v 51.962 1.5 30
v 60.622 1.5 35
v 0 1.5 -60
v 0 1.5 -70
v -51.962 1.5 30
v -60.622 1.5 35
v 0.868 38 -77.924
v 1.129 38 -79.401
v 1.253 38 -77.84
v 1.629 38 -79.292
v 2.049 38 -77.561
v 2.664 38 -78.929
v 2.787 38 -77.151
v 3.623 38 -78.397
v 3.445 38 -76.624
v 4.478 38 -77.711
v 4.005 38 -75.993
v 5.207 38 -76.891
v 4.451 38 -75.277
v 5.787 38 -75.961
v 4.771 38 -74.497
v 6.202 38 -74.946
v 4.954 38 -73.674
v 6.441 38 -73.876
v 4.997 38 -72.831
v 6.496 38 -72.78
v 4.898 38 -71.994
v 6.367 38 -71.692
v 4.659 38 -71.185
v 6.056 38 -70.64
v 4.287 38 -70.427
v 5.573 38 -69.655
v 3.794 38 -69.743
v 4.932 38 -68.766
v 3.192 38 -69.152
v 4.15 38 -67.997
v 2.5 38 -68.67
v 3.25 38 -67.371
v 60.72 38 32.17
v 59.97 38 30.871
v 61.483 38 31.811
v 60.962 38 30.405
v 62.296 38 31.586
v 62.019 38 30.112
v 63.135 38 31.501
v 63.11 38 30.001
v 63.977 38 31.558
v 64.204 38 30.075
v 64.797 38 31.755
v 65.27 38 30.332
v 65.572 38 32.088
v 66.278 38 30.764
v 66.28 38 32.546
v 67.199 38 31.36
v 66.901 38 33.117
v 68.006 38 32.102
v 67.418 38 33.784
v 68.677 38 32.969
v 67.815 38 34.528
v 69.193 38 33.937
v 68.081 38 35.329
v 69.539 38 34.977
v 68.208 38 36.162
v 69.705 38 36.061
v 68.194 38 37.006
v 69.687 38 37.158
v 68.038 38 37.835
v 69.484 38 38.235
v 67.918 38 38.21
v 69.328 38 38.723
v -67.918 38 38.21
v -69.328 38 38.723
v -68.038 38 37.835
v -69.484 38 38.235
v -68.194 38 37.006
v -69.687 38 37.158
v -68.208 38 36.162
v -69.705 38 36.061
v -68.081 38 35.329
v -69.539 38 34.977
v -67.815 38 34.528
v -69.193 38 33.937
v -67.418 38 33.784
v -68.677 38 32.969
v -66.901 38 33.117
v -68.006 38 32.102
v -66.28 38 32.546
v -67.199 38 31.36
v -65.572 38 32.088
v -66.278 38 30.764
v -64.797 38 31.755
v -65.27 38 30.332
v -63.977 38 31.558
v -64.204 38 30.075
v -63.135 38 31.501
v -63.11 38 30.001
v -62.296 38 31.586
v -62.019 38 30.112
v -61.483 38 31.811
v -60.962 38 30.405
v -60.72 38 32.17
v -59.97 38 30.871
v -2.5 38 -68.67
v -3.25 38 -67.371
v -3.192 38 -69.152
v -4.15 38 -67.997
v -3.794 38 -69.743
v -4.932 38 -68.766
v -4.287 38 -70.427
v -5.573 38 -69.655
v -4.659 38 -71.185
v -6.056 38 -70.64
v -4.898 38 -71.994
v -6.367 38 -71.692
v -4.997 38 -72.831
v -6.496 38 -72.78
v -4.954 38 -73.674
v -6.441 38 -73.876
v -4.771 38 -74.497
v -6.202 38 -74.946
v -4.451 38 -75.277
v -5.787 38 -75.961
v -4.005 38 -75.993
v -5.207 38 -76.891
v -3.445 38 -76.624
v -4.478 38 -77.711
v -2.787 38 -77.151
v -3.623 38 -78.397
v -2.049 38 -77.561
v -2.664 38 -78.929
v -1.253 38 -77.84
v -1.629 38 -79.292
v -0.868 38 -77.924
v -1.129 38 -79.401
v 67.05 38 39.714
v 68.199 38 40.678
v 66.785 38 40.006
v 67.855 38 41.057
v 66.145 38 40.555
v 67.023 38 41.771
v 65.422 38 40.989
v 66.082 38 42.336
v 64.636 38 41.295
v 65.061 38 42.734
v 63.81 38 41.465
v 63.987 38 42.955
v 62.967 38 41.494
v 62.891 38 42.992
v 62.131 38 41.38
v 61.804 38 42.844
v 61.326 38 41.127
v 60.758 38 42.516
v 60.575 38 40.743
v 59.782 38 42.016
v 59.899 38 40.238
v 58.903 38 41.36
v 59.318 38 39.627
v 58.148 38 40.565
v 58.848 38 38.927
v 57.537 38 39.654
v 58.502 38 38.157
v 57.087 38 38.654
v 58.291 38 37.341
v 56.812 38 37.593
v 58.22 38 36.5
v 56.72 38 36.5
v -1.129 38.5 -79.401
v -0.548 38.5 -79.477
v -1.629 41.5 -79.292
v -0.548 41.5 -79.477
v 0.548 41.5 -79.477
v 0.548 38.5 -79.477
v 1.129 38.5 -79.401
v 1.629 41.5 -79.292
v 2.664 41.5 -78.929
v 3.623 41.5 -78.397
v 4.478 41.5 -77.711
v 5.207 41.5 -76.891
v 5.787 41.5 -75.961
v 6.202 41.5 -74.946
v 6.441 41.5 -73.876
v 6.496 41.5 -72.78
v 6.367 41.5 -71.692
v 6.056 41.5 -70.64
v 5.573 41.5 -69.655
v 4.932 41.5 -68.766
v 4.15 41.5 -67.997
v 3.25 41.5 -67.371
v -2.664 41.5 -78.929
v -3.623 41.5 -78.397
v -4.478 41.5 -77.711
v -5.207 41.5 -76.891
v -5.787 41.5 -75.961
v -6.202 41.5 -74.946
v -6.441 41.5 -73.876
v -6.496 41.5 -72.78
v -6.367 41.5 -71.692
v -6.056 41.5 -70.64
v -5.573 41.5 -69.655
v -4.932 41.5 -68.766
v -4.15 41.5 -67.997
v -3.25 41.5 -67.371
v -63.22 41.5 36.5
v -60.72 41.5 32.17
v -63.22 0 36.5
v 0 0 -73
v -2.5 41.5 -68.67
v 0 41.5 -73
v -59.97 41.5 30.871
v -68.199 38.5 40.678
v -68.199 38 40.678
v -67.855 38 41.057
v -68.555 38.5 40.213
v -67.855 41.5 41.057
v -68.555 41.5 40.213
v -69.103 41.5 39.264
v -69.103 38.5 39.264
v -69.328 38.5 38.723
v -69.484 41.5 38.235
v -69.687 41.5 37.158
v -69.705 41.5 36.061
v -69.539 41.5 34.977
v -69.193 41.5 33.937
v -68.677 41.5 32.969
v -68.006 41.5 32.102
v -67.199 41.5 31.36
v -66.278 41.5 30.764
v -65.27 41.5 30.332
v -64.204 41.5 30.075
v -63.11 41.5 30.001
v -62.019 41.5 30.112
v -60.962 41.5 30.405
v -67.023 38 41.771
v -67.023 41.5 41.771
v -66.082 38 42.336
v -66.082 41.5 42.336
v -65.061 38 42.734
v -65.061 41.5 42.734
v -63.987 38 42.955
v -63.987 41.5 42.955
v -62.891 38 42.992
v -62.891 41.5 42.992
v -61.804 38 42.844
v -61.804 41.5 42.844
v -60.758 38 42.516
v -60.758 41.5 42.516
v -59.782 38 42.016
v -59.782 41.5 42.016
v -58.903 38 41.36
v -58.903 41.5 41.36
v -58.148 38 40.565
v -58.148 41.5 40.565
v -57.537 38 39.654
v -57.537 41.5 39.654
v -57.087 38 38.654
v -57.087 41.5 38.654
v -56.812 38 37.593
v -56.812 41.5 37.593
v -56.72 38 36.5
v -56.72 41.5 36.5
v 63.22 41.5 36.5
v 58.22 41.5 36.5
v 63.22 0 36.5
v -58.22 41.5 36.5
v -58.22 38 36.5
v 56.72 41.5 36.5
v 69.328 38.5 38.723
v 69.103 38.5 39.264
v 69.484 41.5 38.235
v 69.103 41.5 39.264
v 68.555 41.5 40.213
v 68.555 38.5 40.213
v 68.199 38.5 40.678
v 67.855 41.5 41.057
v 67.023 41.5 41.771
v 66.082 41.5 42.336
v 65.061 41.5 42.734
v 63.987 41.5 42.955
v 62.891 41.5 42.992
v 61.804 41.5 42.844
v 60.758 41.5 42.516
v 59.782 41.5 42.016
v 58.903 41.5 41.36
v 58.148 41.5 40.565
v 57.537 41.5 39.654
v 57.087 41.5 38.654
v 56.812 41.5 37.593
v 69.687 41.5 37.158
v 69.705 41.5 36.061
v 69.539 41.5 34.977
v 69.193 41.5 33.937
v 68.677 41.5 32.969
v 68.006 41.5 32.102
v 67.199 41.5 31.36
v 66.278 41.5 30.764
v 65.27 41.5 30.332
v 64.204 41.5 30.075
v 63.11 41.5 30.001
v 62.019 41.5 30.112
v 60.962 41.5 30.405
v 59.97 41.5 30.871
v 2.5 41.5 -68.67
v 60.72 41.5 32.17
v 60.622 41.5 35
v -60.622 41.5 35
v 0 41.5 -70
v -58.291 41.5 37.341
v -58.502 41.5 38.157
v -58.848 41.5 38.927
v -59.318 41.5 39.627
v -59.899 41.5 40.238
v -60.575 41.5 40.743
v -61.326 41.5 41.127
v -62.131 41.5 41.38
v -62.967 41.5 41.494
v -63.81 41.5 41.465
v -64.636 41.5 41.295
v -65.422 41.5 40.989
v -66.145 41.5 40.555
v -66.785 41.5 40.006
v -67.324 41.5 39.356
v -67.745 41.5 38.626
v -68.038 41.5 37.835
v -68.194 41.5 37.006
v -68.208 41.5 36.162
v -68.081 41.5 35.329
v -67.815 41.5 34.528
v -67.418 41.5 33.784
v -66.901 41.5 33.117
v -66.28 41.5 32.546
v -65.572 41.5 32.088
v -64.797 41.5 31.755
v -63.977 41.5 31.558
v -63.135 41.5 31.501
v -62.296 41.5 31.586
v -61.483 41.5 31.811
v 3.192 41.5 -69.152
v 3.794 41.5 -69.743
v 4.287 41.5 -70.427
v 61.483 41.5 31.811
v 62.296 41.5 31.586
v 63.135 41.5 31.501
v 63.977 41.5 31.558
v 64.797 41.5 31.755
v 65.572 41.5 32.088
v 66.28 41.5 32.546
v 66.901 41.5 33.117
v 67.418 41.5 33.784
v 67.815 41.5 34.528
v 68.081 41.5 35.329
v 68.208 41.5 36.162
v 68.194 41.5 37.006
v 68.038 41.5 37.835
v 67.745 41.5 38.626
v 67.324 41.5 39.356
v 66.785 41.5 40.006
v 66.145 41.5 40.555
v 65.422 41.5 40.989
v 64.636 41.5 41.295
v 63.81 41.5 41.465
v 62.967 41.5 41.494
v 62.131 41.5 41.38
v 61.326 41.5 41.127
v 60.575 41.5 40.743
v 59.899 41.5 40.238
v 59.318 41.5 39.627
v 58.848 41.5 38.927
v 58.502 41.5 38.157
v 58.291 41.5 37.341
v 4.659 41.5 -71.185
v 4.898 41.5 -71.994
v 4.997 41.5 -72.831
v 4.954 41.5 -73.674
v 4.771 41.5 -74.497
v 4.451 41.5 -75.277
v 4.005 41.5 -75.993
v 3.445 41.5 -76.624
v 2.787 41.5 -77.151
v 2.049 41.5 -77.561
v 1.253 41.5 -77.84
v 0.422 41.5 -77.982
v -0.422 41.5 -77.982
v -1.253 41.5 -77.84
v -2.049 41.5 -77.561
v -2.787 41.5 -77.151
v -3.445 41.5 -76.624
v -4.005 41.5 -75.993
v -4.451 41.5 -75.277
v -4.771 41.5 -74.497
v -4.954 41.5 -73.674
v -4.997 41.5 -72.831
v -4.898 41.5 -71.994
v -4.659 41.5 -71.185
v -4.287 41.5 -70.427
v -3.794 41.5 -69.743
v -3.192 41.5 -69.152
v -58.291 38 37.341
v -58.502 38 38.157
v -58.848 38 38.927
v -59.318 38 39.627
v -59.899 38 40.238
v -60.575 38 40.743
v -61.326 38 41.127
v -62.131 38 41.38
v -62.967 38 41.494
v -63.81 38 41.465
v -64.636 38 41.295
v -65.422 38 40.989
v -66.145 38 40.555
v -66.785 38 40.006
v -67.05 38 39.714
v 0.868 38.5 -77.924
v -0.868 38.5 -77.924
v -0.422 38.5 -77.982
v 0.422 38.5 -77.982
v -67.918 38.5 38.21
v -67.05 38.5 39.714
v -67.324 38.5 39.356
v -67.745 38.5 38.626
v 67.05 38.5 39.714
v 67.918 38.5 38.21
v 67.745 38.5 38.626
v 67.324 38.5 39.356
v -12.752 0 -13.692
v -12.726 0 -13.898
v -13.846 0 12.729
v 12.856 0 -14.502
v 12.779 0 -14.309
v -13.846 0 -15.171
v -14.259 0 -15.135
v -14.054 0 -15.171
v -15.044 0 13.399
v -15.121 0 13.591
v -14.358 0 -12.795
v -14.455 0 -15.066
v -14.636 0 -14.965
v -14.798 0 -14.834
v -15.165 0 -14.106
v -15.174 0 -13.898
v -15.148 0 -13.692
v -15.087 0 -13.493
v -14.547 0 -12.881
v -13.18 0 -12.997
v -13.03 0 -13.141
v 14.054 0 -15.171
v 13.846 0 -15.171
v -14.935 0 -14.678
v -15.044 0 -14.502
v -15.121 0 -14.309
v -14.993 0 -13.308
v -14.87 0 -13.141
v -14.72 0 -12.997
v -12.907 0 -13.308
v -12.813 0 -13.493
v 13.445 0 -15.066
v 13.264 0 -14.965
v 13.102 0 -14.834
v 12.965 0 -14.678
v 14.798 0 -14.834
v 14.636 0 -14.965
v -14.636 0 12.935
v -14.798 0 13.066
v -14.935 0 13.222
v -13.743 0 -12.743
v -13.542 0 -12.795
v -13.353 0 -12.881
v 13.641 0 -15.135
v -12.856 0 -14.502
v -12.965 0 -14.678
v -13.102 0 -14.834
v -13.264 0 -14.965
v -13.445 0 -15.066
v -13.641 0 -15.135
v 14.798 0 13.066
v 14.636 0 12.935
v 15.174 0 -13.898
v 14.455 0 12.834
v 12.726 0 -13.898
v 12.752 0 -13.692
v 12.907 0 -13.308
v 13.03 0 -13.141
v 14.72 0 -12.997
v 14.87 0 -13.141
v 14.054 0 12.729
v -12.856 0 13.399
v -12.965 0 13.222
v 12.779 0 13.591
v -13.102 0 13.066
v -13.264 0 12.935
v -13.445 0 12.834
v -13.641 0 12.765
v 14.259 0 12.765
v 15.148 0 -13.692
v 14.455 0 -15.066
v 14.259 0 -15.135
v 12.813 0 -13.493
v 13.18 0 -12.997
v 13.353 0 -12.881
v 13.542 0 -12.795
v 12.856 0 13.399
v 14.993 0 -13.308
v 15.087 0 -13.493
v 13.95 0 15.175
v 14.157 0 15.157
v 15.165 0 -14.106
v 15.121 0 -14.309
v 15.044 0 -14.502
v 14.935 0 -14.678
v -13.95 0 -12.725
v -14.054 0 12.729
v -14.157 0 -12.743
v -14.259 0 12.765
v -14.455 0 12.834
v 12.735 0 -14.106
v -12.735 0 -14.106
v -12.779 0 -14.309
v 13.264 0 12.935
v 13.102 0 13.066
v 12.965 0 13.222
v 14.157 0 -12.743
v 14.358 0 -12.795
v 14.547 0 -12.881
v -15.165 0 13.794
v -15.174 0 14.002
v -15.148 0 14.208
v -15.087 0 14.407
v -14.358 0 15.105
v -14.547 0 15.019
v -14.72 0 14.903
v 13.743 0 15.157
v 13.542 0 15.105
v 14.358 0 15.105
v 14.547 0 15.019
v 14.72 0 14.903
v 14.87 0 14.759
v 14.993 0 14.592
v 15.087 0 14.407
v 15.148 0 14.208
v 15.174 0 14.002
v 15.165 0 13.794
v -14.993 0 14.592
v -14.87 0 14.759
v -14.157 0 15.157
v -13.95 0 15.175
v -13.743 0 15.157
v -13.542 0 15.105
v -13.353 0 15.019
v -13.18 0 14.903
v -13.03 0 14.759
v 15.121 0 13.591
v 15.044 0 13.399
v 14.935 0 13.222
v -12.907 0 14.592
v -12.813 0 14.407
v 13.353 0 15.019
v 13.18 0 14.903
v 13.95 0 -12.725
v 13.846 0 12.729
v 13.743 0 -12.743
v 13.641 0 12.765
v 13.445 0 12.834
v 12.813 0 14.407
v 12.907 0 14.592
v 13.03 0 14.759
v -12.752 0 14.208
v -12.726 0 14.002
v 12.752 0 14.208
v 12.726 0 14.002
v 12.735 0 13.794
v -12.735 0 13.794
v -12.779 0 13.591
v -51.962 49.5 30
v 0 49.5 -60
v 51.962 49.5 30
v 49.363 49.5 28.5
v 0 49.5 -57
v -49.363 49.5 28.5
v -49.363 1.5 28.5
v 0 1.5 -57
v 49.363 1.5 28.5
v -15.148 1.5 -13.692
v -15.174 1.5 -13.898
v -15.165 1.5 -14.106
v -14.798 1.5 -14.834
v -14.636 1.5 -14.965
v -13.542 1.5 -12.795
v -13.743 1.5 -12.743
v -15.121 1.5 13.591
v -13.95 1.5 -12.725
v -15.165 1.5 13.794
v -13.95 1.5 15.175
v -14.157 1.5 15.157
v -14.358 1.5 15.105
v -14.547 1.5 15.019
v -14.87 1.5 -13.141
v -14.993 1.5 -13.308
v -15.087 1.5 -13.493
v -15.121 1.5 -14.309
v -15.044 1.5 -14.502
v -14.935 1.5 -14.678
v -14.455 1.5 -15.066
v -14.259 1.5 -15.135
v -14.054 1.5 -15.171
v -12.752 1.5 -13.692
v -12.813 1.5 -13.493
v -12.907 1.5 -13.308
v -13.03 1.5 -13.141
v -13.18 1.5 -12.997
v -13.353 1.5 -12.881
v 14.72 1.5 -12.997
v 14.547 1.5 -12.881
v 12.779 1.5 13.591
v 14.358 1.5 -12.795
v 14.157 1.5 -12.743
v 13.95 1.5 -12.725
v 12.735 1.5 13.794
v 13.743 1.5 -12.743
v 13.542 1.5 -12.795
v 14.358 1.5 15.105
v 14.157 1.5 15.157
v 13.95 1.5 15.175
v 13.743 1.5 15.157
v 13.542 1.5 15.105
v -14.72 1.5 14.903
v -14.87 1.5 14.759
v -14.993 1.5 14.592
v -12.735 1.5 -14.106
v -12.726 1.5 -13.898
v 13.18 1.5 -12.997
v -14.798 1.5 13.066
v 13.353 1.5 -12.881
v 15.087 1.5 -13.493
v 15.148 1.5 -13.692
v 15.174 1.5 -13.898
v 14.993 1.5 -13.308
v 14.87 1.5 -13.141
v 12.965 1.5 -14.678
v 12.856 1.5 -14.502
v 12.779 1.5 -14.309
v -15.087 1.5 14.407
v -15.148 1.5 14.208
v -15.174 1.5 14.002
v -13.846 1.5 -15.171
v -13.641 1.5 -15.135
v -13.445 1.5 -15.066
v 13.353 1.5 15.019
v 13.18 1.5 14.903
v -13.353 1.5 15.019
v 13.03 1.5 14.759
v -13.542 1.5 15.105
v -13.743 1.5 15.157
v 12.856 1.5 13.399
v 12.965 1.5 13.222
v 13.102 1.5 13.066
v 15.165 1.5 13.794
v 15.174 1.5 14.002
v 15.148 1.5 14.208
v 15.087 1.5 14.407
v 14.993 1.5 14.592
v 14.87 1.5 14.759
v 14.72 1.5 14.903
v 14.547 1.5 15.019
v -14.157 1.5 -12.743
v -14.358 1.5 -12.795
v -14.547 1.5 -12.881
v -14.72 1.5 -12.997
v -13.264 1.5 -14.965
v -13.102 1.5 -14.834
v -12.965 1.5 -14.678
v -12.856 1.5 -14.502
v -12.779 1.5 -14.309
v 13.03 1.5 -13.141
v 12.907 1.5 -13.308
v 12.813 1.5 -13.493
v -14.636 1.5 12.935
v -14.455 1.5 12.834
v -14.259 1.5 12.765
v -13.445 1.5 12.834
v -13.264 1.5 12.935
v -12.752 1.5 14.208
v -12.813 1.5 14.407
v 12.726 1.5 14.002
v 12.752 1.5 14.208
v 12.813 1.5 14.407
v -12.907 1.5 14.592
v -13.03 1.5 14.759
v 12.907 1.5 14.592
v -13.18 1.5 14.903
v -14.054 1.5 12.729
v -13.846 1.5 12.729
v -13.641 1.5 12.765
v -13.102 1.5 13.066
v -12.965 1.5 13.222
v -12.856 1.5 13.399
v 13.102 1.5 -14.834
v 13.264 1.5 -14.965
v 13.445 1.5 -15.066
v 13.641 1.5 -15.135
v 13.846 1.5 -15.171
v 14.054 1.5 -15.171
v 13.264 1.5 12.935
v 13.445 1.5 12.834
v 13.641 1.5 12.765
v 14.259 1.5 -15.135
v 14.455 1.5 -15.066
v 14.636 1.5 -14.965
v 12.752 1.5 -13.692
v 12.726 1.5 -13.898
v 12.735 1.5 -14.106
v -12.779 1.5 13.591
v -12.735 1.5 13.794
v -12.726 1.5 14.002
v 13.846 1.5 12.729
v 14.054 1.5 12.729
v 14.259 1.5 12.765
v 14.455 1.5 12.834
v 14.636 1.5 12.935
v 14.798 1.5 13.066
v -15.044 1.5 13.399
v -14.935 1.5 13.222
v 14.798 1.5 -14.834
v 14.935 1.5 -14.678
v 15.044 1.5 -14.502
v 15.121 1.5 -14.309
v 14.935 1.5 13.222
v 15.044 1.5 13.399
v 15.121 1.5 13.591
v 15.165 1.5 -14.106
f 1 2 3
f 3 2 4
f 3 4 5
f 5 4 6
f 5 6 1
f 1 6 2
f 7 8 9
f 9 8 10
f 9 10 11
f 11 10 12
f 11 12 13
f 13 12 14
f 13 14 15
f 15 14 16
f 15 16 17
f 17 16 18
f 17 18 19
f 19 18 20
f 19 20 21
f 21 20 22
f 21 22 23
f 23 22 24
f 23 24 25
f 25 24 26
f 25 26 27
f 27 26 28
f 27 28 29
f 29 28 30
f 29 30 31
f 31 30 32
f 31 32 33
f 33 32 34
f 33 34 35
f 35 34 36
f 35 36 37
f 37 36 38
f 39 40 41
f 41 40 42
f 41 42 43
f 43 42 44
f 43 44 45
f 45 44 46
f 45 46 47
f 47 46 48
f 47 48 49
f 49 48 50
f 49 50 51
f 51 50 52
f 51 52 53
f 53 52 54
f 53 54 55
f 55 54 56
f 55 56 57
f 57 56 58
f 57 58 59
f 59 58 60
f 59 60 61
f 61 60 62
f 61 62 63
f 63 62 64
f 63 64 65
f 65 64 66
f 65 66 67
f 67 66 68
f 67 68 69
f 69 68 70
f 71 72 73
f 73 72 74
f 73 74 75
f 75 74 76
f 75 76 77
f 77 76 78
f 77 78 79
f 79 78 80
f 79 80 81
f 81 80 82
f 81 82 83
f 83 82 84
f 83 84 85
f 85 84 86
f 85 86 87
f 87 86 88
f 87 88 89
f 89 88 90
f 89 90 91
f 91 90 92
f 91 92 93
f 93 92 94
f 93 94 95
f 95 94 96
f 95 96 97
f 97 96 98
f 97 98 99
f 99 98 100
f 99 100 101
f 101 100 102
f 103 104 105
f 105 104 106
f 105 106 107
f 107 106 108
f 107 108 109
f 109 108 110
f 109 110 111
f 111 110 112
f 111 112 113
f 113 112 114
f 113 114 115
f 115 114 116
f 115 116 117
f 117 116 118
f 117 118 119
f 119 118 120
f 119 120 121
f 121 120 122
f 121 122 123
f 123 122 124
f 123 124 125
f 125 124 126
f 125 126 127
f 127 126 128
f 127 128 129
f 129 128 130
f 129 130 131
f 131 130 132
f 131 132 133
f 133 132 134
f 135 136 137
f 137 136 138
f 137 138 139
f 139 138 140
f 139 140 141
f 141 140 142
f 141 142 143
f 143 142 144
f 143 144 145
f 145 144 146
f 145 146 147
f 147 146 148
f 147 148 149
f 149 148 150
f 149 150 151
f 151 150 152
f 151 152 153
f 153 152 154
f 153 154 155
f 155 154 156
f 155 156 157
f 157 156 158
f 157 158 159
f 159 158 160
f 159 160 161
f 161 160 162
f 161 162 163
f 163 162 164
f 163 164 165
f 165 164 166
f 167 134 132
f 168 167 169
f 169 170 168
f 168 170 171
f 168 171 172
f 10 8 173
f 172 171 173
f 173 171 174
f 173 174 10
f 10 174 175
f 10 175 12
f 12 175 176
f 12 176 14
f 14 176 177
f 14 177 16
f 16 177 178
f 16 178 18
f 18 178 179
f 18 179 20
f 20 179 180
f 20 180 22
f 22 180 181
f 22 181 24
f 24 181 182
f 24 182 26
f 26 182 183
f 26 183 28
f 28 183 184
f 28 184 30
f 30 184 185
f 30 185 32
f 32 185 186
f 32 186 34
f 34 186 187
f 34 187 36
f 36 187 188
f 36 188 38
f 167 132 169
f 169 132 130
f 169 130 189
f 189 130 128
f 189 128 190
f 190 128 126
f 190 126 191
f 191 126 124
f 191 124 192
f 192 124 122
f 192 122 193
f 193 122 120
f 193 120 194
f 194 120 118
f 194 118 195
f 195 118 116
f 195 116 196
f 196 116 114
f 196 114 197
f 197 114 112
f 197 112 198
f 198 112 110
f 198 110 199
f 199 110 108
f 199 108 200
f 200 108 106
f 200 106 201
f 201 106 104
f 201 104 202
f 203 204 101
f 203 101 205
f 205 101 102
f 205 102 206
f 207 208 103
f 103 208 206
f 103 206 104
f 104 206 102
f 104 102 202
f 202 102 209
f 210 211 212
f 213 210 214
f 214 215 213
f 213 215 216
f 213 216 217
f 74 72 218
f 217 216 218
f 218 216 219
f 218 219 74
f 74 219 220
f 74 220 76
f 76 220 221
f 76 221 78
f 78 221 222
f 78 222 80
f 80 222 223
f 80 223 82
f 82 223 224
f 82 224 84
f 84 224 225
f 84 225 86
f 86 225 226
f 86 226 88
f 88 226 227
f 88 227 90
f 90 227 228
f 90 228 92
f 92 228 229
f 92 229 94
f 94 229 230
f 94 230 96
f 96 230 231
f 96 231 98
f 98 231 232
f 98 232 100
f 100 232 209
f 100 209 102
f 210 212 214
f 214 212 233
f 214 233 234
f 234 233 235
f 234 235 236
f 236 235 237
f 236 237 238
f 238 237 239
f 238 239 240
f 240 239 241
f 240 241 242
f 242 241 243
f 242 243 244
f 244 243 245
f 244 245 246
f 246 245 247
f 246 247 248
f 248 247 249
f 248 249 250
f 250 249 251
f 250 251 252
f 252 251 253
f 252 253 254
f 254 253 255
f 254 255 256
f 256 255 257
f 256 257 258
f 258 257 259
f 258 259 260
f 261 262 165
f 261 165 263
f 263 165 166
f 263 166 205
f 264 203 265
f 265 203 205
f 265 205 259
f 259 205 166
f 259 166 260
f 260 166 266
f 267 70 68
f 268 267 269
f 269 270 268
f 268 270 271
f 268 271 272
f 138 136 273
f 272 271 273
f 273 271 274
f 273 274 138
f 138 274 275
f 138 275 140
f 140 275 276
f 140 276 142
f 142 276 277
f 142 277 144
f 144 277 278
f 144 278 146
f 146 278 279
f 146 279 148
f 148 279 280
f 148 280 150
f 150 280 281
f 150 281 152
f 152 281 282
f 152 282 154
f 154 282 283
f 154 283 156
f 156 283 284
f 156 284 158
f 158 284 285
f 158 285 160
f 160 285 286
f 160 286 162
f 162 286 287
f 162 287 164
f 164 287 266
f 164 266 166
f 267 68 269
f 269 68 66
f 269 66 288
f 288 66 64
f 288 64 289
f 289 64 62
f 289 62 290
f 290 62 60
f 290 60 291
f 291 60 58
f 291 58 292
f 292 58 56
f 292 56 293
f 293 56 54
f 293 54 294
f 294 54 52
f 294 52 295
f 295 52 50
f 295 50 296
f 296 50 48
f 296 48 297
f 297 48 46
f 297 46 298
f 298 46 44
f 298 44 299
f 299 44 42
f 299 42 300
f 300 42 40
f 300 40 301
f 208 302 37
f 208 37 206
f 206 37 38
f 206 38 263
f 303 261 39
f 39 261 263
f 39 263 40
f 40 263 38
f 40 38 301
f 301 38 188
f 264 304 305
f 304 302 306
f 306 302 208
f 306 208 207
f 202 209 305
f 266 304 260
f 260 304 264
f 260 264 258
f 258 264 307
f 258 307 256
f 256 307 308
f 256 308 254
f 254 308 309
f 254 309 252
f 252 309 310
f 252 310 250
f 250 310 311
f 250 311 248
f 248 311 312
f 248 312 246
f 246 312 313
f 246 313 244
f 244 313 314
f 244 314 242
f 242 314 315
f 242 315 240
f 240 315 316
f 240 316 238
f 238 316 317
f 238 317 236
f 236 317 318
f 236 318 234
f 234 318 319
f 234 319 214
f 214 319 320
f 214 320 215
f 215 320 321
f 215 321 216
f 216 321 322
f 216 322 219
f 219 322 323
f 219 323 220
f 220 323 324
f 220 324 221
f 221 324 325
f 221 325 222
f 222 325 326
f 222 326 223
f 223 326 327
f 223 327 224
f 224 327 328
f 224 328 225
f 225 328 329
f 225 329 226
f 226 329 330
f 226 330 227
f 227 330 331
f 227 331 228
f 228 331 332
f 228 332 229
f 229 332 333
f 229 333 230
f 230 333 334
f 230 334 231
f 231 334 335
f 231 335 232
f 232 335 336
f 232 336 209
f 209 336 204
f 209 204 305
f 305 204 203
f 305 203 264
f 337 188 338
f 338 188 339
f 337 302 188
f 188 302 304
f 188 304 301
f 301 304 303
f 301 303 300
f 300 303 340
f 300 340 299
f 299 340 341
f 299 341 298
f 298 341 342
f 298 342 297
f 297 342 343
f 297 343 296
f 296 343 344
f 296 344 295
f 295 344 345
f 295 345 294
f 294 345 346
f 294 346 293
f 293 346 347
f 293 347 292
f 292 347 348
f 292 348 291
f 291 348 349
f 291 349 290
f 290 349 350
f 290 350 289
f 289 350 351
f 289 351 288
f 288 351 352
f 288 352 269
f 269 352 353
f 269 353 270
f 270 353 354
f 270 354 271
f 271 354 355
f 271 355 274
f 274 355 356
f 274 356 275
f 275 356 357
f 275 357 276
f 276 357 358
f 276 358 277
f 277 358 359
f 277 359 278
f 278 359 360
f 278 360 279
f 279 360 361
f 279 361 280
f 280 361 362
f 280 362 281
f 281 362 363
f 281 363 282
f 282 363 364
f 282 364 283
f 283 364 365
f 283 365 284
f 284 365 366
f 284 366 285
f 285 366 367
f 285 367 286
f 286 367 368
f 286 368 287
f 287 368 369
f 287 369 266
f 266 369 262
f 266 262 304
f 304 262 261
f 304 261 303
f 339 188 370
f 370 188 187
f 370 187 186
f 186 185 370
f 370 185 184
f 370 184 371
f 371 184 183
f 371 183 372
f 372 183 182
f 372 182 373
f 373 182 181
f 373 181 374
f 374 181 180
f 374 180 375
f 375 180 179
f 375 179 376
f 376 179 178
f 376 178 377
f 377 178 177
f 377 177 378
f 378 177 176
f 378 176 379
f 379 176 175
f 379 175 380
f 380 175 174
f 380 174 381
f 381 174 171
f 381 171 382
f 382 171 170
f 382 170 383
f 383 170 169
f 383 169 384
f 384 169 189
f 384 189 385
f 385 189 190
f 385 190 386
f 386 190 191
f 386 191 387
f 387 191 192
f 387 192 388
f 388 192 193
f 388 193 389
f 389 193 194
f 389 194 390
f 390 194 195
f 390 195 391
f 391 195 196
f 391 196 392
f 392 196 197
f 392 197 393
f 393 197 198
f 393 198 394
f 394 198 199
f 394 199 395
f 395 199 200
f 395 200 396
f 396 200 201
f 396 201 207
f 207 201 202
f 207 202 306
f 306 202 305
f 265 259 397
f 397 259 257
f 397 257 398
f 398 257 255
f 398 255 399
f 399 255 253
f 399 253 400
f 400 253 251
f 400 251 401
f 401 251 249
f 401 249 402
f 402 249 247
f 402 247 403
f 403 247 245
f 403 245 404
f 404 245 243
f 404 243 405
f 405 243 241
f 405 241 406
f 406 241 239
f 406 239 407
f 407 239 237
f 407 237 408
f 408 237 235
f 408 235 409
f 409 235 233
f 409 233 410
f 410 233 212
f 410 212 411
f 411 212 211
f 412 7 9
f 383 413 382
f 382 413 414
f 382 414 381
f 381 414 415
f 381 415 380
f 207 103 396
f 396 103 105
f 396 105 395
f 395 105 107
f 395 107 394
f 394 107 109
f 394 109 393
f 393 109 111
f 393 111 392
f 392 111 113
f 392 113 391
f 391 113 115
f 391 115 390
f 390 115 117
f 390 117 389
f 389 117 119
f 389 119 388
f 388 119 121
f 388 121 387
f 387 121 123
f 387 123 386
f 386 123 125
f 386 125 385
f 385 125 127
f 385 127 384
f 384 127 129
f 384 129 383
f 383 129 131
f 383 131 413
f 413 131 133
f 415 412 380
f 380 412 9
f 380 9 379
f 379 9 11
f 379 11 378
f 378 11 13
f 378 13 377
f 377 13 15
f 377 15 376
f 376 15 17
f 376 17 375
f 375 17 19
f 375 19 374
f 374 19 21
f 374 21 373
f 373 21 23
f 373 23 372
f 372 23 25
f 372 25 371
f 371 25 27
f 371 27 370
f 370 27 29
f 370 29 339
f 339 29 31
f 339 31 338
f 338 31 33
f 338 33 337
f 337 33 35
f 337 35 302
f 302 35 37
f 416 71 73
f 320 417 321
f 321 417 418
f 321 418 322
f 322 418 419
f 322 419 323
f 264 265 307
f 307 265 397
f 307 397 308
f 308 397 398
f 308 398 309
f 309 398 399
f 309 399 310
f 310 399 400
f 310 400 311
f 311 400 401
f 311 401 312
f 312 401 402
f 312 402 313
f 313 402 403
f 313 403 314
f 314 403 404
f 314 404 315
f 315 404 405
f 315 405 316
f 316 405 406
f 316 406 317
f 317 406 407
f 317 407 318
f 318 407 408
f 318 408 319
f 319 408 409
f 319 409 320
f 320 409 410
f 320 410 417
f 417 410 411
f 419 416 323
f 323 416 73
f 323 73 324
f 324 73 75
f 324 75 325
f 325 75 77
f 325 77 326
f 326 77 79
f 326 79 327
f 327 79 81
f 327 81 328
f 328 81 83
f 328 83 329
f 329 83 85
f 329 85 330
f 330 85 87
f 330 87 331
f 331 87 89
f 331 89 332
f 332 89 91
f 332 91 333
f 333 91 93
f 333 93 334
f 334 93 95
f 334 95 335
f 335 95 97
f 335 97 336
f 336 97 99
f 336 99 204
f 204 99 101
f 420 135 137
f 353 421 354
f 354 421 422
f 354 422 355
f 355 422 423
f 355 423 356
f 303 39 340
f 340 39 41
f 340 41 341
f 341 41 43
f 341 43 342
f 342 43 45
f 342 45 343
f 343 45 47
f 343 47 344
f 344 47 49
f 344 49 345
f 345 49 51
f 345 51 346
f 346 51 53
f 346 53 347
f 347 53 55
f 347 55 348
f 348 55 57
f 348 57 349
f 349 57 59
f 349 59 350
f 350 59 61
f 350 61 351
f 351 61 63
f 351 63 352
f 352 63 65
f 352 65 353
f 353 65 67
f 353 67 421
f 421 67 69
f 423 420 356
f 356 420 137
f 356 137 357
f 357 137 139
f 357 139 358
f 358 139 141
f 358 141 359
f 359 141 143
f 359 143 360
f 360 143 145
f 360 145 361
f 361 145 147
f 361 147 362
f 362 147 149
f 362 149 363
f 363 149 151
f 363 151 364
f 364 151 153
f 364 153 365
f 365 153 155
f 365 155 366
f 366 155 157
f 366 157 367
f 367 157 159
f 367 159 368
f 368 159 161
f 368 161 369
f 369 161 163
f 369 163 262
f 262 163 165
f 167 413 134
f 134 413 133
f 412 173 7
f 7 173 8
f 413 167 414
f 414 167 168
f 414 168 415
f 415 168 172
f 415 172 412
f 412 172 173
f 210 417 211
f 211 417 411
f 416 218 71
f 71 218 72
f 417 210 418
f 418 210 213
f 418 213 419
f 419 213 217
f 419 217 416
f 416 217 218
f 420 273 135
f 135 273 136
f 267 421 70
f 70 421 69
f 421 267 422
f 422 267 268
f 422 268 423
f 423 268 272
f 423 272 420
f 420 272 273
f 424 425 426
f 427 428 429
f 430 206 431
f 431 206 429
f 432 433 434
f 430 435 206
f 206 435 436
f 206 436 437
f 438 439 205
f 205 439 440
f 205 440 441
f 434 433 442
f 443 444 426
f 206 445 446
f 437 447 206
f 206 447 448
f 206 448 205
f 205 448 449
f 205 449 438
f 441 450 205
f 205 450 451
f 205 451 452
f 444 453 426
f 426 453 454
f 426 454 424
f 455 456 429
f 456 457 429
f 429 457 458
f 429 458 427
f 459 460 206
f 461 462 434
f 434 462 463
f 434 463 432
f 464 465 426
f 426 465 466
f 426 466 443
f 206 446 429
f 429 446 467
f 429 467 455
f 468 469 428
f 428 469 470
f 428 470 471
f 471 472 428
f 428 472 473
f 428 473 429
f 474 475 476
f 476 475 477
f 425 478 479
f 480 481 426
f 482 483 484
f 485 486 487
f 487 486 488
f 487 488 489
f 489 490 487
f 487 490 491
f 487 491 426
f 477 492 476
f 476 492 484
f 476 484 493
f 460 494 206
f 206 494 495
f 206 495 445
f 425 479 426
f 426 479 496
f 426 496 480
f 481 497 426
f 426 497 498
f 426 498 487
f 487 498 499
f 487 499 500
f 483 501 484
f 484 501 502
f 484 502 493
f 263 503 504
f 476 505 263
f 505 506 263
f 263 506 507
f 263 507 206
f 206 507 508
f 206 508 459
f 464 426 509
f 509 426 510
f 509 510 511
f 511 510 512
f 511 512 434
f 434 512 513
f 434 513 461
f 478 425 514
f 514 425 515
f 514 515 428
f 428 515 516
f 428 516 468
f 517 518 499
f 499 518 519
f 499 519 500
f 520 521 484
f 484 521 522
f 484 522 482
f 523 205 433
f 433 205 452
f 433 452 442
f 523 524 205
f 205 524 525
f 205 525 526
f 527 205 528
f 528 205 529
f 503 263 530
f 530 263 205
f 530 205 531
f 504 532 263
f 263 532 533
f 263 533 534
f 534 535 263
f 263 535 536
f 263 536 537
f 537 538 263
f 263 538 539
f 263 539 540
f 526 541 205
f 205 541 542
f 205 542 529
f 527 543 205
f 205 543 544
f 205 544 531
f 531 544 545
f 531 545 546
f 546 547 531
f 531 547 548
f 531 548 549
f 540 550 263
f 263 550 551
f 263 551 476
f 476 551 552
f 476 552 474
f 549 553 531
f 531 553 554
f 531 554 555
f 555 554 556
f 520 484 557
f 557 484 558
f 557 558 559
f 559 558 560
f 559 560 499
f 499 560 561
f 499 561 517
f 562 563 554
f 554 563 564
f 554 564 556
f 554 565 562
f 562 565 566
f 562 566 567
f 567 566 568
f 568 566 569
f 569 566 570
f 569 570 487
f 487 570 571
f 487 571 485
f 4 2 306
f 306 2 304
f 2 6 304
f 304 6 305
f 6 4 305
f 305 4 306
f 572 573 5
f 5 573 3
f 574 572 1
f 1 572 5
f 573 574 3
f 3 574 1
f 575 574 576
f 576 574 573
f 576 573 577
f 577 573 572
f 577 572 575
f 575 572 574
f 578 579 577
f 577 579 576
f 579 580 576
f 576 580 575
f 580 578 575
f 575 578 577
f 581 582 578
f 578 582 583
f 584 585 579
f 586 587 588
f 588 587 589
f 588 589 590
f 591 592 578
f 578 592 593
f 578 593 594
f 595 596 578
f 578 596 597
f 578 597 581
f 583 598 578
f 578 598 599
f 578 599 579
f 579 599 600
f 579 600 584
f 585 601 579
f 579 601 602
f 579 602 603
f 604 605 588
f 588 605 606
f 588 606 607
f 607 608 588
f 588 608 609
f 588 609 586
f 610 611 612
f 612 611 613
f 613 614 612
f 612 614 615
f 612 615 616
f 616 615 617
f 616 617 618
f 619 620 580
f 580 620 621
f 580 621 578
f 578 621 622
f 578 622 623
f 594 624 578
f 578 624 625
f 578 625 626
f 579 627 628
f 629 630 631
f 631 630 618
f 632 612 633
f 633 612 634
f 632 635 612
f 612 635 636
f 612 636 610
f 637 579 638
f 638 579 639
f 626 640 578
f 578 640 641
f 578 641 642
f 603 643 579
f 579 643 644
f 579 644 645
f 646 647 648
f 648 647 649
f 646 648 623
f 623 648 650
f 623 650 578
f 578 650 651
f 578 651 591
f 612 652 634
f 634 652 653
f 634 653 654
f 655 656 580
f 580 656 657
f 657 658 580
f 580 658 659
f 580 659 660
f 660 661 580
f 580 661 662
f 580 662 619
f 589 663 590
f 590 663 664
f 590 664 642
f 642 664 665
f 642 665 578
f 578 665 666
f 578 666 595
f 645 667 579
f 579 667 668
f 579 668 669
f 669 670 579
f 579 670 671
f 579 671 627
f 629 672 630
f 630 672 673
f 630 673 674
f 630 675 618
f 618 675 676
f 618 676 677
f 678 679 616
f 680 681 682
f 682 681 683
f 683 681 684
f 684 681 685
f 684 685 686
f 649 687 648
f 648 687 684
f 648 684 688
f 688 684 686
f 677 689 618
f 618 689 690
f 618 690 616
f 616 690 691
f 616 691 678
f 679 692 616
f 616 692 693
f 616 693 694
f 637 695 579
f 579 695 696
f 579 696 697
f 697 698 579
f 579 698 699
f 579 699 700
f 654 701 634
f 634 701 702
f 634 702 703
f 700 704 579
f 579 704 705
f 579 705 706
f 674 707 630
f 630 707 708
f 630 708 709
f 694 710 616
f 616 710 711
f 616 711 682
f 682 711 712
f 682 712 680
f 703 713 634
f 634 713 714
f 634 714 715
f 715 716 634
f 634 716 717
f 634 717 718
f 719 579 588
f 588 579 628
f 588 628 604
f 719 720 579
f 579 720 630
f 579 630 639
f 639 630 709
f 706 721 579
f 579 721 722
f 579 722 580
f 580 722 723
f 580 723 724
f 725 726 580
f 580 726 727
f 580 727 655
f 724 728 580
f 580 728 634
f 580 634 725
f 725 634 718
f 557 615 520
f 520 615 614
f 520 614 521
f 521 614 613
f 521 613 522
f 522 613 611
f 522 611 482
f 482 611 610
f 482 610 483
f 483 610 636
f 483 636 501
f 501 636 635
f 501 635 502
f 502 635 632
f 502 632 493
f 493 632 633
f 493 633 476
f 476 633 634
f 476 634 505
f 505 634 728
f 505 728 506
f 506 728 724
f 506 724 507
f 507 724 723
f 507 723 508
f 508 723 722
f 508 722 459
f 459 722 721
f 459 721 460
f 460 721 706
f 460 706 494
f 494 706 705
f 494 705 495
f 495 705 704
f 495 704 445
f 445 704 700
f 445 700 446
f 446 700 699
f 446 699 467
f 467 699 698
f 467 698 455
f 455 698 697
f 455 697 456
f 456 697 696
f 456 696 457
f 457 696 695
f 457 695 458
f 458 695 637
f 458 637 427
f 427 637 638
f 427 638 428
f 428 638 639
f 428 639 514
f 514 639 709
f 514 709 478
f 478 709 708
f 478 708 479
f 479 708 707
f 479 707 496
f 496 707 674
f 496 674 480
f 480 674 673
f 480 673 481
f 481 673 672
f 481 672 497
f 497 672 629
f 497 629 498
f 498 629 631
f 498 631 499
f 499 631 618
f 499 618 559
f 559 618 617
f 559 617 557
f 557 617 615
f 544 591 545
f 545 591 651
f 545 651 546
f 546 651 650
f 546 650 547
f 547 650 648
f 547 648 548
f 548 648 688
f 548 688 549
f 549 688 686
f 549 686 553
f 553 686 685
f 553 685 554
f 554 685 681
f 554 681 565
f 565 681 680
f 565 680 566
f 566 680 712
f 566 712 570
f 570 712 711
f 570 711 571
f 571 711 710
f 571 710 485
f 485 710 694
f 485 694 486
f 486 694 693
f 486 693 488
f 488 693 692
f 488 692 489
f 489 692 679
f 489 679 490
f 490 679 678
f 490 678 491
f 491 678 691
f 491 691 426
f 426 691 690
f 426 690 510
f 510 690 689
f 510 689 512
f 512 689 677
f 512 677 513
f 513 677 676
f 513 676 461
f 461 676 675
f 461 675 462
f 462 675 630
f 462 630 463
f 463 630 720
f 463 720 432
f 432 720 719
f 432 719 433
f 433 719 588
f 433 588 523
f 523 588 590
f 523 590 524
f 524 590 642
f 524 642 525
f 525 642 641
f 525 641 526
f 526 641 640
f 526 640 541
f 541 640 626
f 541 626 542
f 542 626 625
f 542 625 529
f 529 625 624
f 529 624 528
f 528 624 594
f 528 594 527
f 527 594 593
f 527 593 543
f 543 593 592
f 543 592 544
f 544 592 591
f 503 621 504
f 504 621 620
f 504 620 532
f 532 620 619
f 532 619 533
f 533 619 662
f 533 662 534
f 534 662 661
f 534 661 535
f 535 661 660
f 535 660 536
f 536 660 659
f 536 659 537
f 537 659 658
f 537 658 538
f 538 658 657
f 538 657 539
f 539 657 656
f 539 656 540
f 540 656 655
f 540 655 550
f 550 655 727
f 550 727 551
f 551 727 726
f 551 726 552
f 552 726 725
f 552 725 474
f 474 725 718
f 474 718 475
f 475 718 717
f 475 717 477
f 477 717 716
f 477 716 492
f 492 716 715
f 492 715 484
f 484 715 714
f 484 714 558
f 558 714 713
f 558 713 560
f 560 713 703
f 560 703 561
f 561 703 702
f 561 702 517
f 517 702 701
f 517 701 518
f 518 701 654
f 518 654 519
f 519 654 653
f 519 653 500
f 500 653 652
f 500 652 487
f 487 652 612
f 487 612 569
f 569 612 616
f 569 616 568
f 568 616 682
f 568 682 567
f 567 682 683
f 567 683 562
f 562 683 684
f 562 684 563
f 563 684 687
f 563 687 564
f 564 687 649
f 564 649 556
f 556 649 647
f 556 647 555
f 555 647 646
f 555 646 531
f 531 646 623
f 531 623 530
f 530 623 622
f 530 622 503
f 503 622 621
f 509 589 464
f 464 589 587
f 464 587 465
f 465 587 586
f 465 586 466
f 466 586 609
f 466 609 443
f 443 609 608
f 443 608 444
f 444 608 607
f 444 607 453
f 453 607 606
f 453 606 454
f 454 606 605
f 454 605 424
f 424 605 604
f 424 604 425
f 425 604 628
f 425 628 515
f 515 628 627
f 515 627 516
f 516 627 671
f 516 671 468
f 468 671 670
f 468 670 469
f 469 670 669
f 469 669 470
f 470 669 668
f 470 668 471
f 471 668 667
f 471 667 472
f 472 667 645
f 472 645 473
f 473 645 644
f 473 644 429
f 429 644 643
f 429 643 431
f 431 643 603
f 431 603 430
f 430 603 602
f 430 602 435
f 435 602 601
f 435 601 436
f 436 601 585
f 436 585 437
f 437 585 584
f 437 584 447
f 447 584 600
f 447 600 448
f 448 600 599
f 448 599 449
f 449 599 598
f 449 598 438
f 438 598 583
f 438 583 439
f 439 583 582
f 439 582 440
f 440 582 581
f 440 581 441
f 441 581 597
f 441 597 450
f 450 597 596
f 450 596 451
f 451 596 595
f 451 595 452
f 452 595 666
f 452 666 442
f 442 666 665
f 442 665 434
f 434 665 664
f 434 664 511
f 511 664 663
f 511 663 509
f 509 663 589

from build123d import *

# Parameters (mm, degrees)
BOSS_EXTRUDE1_DEPTH          = 3.5
CUT_EXTRUDE1_DEPTH           = 0.5
CUT_EXTRUDE2_DEPTH           = 0.5
CUT_EXTRUDE3_DEPTH           = 0.5
BOSS_EXTRUDE2_DEPTH          = 38
CUT_EXTRUDE4_DEPTH           = 40
BOSS_EXTRUDE3_DEPTH          = 48
CUT_EXTRUDE5_DEPTH           = 48
F_2_45_2_45_DIAMETER_HOLE1_D = 2.45


with BuildPart() as part:
    # Sketch1 → Boss-Extrude1 (new body)
    with BuildSketch(Plane.XZ.offset(-38)):
        with BuildLine():
            Line((3.25, -67.370834875), (59.969854476, 30.870834875))
            ThreePointArc((59.969854476, 30.870834875), (68.849019601, 39.75), (56.719854476, 36.5))
            Line((56.719854476, 36.5), (-56.719854476, 36.5))
            ThreePointArc((-56.719854476, 36.5), (-68.849019601, 39.75), (-59.969854476, 30.870834875))
            Line((-59.969854476, 30.870834875), (-3.25, -67.370834875))
            ThreePointArc((-3.25, -67.370834875), (0, -79.5), (3.25, -67.370834875))
        make_face()
        with BuildLine():
            Line((-2.5, -68.669872981), (0, -73))
            Line((0, -73), (2.5, -68.669872981))
            ThreePointArc((2.5, -68.669872981), (0, -78), (-2.5, -68.669872981))
        make_face(mode=Mode.SUBTRACT)
        with BuildLine():
            Line((-58.219854476, 36.5), (-63.219854476, 36.5))
            Line((-63.219854476, 36.5), (-60.719854476, 32.169872981))
            ThreePointArc((-60.719854476, 32.169872981), (-67.549981495, 39), (-58.219854476, 36.5))
        make_face(mode=Mode.SUBTRACT)
        with BuildLine():
            Line((60.719854476, 32.169872981), (63.219854476, 36.5))
            Line((63.219854476, 36.5), (58.219854476, 36.5))
            ThreePointArc((58.219854476, 36.5), (67.549981495, 39), (60.719854476, 32.169872981))
        make_face(mode=Mode.SUBTRACT)
    extrude(amount=-BOSS_EXTRUDE1_DEPTH)

    # Sketch2 → Cut-Extrude1 (cut)
    with BuildSketch(Plane.XZ.offset(-38)):
        with BuildLine():
            Line((1.128713155, -79.401250395), (0.868240888, -77.924038765))
            ThreePointArc((0.868240888, -77.924038765), (0, -78), (-0.868240888, -77.924038765))
            Line((-0.868240888, -77.924038765), (-1.128713155, -79.401250395))
            ThreePointArc((-1.128713155, -79.401250395), (0, -79.5), (1.128713155, -79.401250395))
        make_face()
    extrude(amount=-CUT_EXTRUDE1_DEPTH, mode=Mode.SUBTRACT)

    # Sketch3 → Cut-Extrude2 (cut)
    with BuildSketch(Plane.XZ.offset(-38)):
        with BuildLine():
            Line((-69.327856511, 38.723130932), (-67.91831758, 38.210100717))
            ThreePointArc((-67.91831758, 38.210100717), (-67.549981495, 39), (-67.050076692, 39.713938048))
            Line((-67.050076692, 39.713938048), (-68.199143357, 40.678119463))
            ThreePointArc((-68.199143357, 40.678119463), (-68.849019601, 39.75), (-69.327856511, 38.723130932))
        make_face()
    extrude(amount=-CUT_EXTRUDE2_DEPTH, mode=Mode.SUBTRACT)

    # Sketch4 → Cut-Extrude3 (cut)
    with BuildSketch(Plane.XZ.offset(-38)):
        with BuildLine():
            Line((67.91831758, 38.210100717), (69.327856511, 38.723130932))
            ThreePointArc((69.327856511, 38.723130932), (68.849019601, 39.75), (68.199143357, 40.678119463))
            Line((68.199143357, 40.678119463), (67.050076692, 39.713938048))
            ThreePointArc((67.050076692, 39.713938048), (67.549981495, 39), (67.91831758, 38.210100717))
        make_face()
    extrude(amount=-CUT_EXTRUDE3_DEPTH, mode=Mode.SUBTRACT)

    # Sketch5 → Boss-Extrude2 (add)
    with BuildSketch(Plane.XZ.offset(-38)):
        Polygon((0, -73), (-63.219854476, 36.5), (63.219854476, 36.5), align=None)
    extrude(amount=BOSS_EXTRUDE2_DEPTH)

    # Sketch6 → Cut-Extrude4 (cut)
    with BuildSketch(Plane(origin=(0, 41.5, 0), x_dir=(-1, 0, 0), z_dir=(0, 1, 0))):
        Polygon((0, -70), (60.621778265, 35), (-60.621778265, 35), align=None)
    extrude(amount=-CUT_EXTRUDE4_DEPTH, mode=Mode.SUBTRACT)

    # Sketch7 → Boss-Extrude3 (add)
    with BuildSketch(Plane(origin=(0, 1.5, 0), x_dir=(-1, 0, 0), z_dir=(0, 1, 0))):
        Polygon((0, -60), (-51.961524227, 30), (51.961524227, 30), align=None)
    extrude(amount=BOSS_EXTRUDE3_DEPTH)

    # Sketch8 → Cut-Extrude5 (cut)
    with BuildSketch(Plane(origin=(0, 49.5, 0), x_dir=(-1, 0, 0), z_dir=(0, 1, 0))):
        Polygon((49.363448016, 28.5), (-49.363448016, 28.5), (0, -57), align=None)
    extrude(amount=-CUT_EXTRUDE5_DEPTH, mode=Mode.SUBTRACT)

    # Ø2.45 (2.45) Diameter Hole1 (through all)
    with Locations(Plane(origin=(0, 1.5, 0), x_dir=(1, 0, 0), z_dir=(0, 1, 0))):
        with Locations((-13.95, 13.95), (13.95, -13.95), (-13.95, -13.95), (13.95, 13.95)):
            Hole(F_2_45_2_45_DIAMETER_HOLE1_D / 2)


solid = part.part
